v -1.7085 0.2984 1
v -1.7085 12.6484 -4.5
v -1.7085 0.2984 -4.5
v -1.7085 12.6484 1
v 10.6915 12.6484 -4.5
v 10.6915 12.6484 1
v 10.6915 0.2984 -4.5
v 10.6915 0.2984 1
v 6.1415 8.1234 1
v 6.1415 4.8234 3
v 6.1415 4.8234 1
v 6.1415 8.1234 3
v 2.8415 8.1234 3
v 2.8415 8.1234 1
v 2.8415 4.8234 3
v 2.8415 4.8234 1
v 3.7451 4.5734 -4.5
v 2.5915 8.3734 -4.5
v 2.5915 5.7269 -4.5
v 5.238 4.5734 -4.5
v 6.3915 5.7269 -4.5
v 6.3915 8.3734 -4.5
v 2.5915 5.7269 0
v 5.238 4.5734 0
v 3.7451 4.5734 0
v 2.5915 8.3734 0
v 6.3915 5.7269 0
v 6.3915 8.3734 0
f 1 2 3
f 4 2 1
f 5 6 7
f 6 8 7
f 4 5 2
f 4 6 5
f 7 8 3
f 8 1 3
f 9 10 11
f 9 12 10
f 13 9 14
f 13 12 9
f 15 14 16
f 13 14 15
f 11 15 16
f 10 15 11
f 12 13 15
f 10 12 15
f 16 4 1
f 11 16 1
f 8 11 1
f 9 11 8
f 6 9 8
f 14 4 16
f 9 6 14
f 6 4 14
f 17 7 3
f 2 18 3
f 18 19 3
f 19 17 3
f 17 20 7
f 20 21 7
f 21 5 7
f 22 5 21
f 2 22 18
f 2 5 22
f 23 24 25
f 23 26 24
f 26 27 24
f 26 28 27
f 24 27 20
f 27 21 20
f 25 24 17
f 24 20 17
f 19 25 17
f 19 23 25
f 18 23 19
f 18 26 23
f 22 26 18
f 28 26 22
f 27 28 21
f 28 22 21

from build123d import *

# Parameters (mm, degrees)
BOSS_EXTRUDE1_DEPTH      = 3
BOSS_EXTRUDE2_START      = 22.115178
SKETCH3_W                = 10.4
SKETCH3_H                = 10.35
BOSS_EXTRUDE2_DEPTH      = 1
BOSS_EXTRUDE2_DEPTH_BACK = 3
CUT_EXTRUDE1_DEPTH       = 4
BOSS_EXTRUDE3_DEPTH      = 2
SKETCH6_W                = 4
SKETCH6_H                = 3.75
BOSS_EXTRUDE4_DEPTH      = 1
SKETCH7_W                = 4
SKETCH7_H                = 3.75
BOSS_EXTRUDE5_DEPTH      = 1
SKETCH8_W                = 3.8
SKETCH8_H                = 4
BOSS_EXTRUDE6_DEPTH      = 1
SKETCH9_W                = 3.8
SKETCH9_H                = 4
BOSS_EXTRUDE7_DEPTH      = 1
CUT_EXTRUDE2_DEPTH       = 3
BOSS_EXTRUDE8_DEPTH      = 3
BOSS_EXTRUDE9_DEPTH      = 6
BOSS_EXTRUDE10_DEPTH     = 7
SKETCH15_W               = 12.4
SKETCH15_H               = 12.35
CUT_EXTRUDE3_DEPTH       = 1.5


with BuildPart() as part:
    # Sketch1 → Boss-Extrude1 (new body)
    with BuildSketch(Plane.XY):
        Polygon((6.141518054, 8.123354813), (2.841518054, 8.123354813), (2.841518054, 5.623354813), (3.641518054, 4.823354813), (5.341518054, 4.823354813), (6.141518054, 5.623354813), align=None)
    extrude(amount=BOSS_EXTRUDE1_DEPTH)

    # Sketch3 → Boss-Extrude2 (add, two sides)
    with BuildSketch(Plane.XY.offset(-22.115178163).offset(BOSS_EXTRUDE2_START)) as boss_extrude2_sk:
        with Locations((4.491518054, 6.473354813)):
            Rectangle(SKETCH3_W, SKETCH3_H)
        Polygon((2.841518054, 8.123354813), (2.841518054, 5.623354813), (3.641518054, 4.823354813), (5.341518054, 4.823354813), (6.141518054, 5.623354813), (6.141518054, 8.123354813), align=None, mode=Mode.SUBTRACT)
    extrude(amount=BOSS_EXTRUDE2_DEPTH)
    extrude(boss_extrude2_sk.sketch, amount=-BOSS_EXTRUDE2_DEPTH_BACK)

    # Sketch4 → Cut-Extrude1 (cut)
    with BuildSketch(Plane.XY.offset(1)):
        with BuildLine():
            Line((-0.708481946, 4.598354813), (-0.708481946, 1.298354813))
            Line((-0.708481946, 1.298354813), (2.591518054, 1.298354813))
            ThreePointArc((2.591518054, 1.298354813), (1.624970432, 3.631807191), (-0.708481946, 4.598354813))
        make_face()
        with BuildLine():
            Line((9.691518054, 1.298354813), (6.391518054, 1.298354813))
            ThreePointArc((6.391518054, 1.298354813), (7.358065676, 3.631807191), (9.691518054, 4.598354813))
            Line((9.691518054, 4.598354813), (9.691518054, 1.298354813))
        make_face()
        with BuildLine():
            Line((9.691518054, 8.348354813), (9.691518054, 11.648354813))
            Line((9.691518054, 11.648354813), (6.391518054, 11.648354813))
            ThreePointArc((6.391518054, 11.648354813), (7.358065676, 9.314902435), (9.691518054, 8.348354813))
        make_face()
        with BuildLine():
            Line((-0.708481946, 8.348354813), (-0.708481946, 11.648354813))
            Line((-0.708481946, 11.648354813), (2.591518054, 11.648354813))
            ThreePointArc((2.591518054, 11.648354813), (1.624970432, 9.314902435), (-0.708481946, 8.348354813))
        make_face()
    extrude(amount=-CUT_EXTRUDE1_DEPTH, mode=Mode.SUBTRACT)

    # Sketch5 → Boss-Extrude3 (add)
    with BuildSketch(Plane.XY.offset(3)):
        Polygon((2.841518054, 5.623354813), (3.641518054, 4.823354813), (2.841518054, 4.823354813), align=None)
        Polygon((5.341518054, 4.823354813), (6.141518054, 5.623354813), (6.141518054, 4.823354813), align=None)
    extrude(amount=-BOSS_EXTRUDE3_DEPTH)

    # Sketch6 → Boss-Extrude4 (add)
    with BuildSketch(Plane.ZY.offset(0.708481946)):
        with Locations((-1, 6.473354813)):
            Rectangle(SKETCH6_W, SKETCH6_H)
    extrude(amount=BOSS_EXTRUDE4_DEPTH)

    # Sketch7 → Boss-Extrude5 (add)
    with BuildSketch(Plane(origin=(9.691518054, 0, 0), x_dir=(0, 0, -1), z_dir=(1, 0, 0))):
        with Locations((1, 6.473354813)):
            Rectangle(SKETCH7_W, SKETCH7_H)
    extrude(amount=BOSS_EXTRUDE5_DEPTH)

    # Sketch8 → Boss-Extrude6 (add)
    with BuildSketch(Plane(origin=(0, 11.648354813, 0), x_dir=(1, 0, 0), z_dir=(0, 1, 0))):
        with Locations((4.491518054, 1)):
            Rectangle(SKETCH8_W, SKETCH8_H)
    extrude(amount=BOSS_EXTRUDE6_DEPTH)

    # Sketch9 → Boss-Extrude7 (add)
    with BuildSketch(Plane.XZ.offset(-1.298354813)):
        with Locations((4.491518054, -1)):
            Rectangle(SKETCH9_W, SKETCH9_H)
    extrude(amount=BOSS_EXTRUDE7_DEPTH)

    # Sketch10 → Cut-Extrude2 (cut)
    with BuildSketch(Plane(origin=(0, 0, -3), x_dir=(-1, 0, 0), z_dir=(0, 0, -1))):
        Polygon((-6.641518054, 6.873354813), (-6.641518054, 8.623354813), (-4.491518054, 8.623354813), (-2.341518054, 8.623354813), (-2.341518054, 6.873354813), (-2.341518054, 5.623354813), (-3.641518054, 4.323354813), (-4.491518054, 4.323354813), (-5.341518054, 4.323354813), (-5.841518054, 4.823354813), (-6.641518054, 5.623354813), align=None)
    extrude(amount=-CUT_EXTRUDE2_DEPTH, mode=Mode.SUBTRACT)

    # Sketch11 → Boss-Extrude8 (add)
    with BuildSketch(Plane(origin=(0, 0, -3), x_dir=(-1, 0, 0), z_dir=(0, 0, -1))):
        with BuildLine():
            Line((0.708481946, 4.598354813), (1.708481946, 4.598354813))
            Line((1.708481946, 4.598354813), (1.708481946, 8.348354813))
            Line((1.708481946, 8.348354813), (0.708481946, 8.348354813))
            ThreePointArc((0.708481946, 8.348354813), (-1.624970432, 9.314902435), (-2.591518054, 11.648354813))
            Line((-2.591518054, 11.648354813), (-2.591518054, 12.648354813))
            Line((-2.591518054, 12.648354813), (-6.391518054, 12.648354813))
            Line((-6.391518054, 12.648354813), (-6.391518054, 11.648354813))
            ThreePointArc((-6.391518054, 11.648354813), (-7.358065676, 9.314902435), (-9.691518054, 8.348354813))
            Line((-9.691518054, 8.348354813), (-10.691518054, 8.348354813))
            Line((-10.691518054, 8.348354813), (-10.691518054, 4.598354813))
            Line((-10.691518054, 4.598354813), (-9.691518054, 4.598354813))
            ThreePointArc((-9.691518054, 4.598354813), (-7.358065676, 3.631807191), (-6.391518054, 1.298354813))
            Line((-6.391518054, 1.298354813), (-6.391518054, 0.298354813))
            Line((-6.391518054, 0.298354813), (-2.591518054, 0.298354813))
            Line((-2.591518054, 0.298354813), (-2.591518054, 1.298354813))
            ThreePointArc((-2.591518054, 1.298354813), (-1.624970432, 3.631807191), (0.708481946, 4.598354813))
        make_face()
        Polygon((-6.641518054, 5.623354813), (-5.341518054, 4.323354813), (-3.641518054, 4.323354813), (-2.341518054, 5.623354813), (-2.341518054, 8.623354813), (-6.641518054, 8.623354813), align=None, mode=Mode.SUBTRACT)
    extrude(amount=BOSS_EXTRUDE8_DEPTH)

    # Sketch13 → Boss-Extrude9 (add)
    with BuildSketch(Plane(origin=(0, 0, -6), x_dir=(-1, 0, 0), z_dir=(0, 0, -1))):
        Polygon((-2.341518054, 8.623354813), (-6.641518054, 8.623354813), (-6.641518054, 5.623354813), (-5.341518054, 4.323354813), (-3.641518054, 4.323354813), (-2.341518054, 5.623354813), align=None)
        Polygon((-6.391518054, 7.123354813), (-6.391518054, 8.373354813), (-4.491518054, 8.373354813), (-2.591518054, 8.373354813), (-2.591518054, 7.123354813), (-2.591518054, 5.726908204), (-3.168294749, 5.150131508), (-3.745071444, 4.573354813), (-4.491518054, 4.573354813), (-5.237964663, 4.573354813), (-5.814741358, 5.150131508), (-6.391518054, 5.726908204), align=None, mode=Mode.SUBTRACT)
    extrude(amount=-BOSS_EXTRUDE9_DEPTH)

    # Sketch14 → Boss-Extrude10 (add)
    with BuildSketch(Plane(origin=(0, 0, -6), x_dir=(-1, 0, 0), z_dir=(0, 0, -1))):
        Polygon((1.708481946, 4.598354813), (1.708481946, 8.348354813), (1.708481946, 12.648354813), (-2.591518054, 12.648354813), (-6.391518054, 12.648354813), (-10.691518054, 12.648354813), (-10.691518054, 8.348354813), (-10.691518054, 4.598354813), (-10.691518054, 0.298354813), (-6.391518054, 0.298354813), (-2.591518054, 0.298354813), (1.708481946, 0.298354813), align=None)
        Polygon((-6.391518054, 5.726908204), (-5.237964663, 4.573354813), (-3.745071444, 4.573354813), (-2.591518054, 5.726908204), (-2.591518054, 8.373354813), (-6.391518054, 8.373354813), align=None, mode=Mode.SUBTRACT)
    extrude(amount=-BOSS_EXTRUDE10_DEPTH)

    # Sketch15 → Cut-Extrude3 (cut)
    with BuildSketch(Plane(origin=(0, 0, -6), x_dir=(-1, 0, 0), z_dir=(0, 0, -1))):
        with Locations((-4.491518054, 6.473354813)):
            Rectangle(SKETCH15_W, SKETCH15_H)
    extrude(amount=-CUT_EXTRUDE3_DEPTH, mode=Mode.SUBTRACT)


solid = part.part
